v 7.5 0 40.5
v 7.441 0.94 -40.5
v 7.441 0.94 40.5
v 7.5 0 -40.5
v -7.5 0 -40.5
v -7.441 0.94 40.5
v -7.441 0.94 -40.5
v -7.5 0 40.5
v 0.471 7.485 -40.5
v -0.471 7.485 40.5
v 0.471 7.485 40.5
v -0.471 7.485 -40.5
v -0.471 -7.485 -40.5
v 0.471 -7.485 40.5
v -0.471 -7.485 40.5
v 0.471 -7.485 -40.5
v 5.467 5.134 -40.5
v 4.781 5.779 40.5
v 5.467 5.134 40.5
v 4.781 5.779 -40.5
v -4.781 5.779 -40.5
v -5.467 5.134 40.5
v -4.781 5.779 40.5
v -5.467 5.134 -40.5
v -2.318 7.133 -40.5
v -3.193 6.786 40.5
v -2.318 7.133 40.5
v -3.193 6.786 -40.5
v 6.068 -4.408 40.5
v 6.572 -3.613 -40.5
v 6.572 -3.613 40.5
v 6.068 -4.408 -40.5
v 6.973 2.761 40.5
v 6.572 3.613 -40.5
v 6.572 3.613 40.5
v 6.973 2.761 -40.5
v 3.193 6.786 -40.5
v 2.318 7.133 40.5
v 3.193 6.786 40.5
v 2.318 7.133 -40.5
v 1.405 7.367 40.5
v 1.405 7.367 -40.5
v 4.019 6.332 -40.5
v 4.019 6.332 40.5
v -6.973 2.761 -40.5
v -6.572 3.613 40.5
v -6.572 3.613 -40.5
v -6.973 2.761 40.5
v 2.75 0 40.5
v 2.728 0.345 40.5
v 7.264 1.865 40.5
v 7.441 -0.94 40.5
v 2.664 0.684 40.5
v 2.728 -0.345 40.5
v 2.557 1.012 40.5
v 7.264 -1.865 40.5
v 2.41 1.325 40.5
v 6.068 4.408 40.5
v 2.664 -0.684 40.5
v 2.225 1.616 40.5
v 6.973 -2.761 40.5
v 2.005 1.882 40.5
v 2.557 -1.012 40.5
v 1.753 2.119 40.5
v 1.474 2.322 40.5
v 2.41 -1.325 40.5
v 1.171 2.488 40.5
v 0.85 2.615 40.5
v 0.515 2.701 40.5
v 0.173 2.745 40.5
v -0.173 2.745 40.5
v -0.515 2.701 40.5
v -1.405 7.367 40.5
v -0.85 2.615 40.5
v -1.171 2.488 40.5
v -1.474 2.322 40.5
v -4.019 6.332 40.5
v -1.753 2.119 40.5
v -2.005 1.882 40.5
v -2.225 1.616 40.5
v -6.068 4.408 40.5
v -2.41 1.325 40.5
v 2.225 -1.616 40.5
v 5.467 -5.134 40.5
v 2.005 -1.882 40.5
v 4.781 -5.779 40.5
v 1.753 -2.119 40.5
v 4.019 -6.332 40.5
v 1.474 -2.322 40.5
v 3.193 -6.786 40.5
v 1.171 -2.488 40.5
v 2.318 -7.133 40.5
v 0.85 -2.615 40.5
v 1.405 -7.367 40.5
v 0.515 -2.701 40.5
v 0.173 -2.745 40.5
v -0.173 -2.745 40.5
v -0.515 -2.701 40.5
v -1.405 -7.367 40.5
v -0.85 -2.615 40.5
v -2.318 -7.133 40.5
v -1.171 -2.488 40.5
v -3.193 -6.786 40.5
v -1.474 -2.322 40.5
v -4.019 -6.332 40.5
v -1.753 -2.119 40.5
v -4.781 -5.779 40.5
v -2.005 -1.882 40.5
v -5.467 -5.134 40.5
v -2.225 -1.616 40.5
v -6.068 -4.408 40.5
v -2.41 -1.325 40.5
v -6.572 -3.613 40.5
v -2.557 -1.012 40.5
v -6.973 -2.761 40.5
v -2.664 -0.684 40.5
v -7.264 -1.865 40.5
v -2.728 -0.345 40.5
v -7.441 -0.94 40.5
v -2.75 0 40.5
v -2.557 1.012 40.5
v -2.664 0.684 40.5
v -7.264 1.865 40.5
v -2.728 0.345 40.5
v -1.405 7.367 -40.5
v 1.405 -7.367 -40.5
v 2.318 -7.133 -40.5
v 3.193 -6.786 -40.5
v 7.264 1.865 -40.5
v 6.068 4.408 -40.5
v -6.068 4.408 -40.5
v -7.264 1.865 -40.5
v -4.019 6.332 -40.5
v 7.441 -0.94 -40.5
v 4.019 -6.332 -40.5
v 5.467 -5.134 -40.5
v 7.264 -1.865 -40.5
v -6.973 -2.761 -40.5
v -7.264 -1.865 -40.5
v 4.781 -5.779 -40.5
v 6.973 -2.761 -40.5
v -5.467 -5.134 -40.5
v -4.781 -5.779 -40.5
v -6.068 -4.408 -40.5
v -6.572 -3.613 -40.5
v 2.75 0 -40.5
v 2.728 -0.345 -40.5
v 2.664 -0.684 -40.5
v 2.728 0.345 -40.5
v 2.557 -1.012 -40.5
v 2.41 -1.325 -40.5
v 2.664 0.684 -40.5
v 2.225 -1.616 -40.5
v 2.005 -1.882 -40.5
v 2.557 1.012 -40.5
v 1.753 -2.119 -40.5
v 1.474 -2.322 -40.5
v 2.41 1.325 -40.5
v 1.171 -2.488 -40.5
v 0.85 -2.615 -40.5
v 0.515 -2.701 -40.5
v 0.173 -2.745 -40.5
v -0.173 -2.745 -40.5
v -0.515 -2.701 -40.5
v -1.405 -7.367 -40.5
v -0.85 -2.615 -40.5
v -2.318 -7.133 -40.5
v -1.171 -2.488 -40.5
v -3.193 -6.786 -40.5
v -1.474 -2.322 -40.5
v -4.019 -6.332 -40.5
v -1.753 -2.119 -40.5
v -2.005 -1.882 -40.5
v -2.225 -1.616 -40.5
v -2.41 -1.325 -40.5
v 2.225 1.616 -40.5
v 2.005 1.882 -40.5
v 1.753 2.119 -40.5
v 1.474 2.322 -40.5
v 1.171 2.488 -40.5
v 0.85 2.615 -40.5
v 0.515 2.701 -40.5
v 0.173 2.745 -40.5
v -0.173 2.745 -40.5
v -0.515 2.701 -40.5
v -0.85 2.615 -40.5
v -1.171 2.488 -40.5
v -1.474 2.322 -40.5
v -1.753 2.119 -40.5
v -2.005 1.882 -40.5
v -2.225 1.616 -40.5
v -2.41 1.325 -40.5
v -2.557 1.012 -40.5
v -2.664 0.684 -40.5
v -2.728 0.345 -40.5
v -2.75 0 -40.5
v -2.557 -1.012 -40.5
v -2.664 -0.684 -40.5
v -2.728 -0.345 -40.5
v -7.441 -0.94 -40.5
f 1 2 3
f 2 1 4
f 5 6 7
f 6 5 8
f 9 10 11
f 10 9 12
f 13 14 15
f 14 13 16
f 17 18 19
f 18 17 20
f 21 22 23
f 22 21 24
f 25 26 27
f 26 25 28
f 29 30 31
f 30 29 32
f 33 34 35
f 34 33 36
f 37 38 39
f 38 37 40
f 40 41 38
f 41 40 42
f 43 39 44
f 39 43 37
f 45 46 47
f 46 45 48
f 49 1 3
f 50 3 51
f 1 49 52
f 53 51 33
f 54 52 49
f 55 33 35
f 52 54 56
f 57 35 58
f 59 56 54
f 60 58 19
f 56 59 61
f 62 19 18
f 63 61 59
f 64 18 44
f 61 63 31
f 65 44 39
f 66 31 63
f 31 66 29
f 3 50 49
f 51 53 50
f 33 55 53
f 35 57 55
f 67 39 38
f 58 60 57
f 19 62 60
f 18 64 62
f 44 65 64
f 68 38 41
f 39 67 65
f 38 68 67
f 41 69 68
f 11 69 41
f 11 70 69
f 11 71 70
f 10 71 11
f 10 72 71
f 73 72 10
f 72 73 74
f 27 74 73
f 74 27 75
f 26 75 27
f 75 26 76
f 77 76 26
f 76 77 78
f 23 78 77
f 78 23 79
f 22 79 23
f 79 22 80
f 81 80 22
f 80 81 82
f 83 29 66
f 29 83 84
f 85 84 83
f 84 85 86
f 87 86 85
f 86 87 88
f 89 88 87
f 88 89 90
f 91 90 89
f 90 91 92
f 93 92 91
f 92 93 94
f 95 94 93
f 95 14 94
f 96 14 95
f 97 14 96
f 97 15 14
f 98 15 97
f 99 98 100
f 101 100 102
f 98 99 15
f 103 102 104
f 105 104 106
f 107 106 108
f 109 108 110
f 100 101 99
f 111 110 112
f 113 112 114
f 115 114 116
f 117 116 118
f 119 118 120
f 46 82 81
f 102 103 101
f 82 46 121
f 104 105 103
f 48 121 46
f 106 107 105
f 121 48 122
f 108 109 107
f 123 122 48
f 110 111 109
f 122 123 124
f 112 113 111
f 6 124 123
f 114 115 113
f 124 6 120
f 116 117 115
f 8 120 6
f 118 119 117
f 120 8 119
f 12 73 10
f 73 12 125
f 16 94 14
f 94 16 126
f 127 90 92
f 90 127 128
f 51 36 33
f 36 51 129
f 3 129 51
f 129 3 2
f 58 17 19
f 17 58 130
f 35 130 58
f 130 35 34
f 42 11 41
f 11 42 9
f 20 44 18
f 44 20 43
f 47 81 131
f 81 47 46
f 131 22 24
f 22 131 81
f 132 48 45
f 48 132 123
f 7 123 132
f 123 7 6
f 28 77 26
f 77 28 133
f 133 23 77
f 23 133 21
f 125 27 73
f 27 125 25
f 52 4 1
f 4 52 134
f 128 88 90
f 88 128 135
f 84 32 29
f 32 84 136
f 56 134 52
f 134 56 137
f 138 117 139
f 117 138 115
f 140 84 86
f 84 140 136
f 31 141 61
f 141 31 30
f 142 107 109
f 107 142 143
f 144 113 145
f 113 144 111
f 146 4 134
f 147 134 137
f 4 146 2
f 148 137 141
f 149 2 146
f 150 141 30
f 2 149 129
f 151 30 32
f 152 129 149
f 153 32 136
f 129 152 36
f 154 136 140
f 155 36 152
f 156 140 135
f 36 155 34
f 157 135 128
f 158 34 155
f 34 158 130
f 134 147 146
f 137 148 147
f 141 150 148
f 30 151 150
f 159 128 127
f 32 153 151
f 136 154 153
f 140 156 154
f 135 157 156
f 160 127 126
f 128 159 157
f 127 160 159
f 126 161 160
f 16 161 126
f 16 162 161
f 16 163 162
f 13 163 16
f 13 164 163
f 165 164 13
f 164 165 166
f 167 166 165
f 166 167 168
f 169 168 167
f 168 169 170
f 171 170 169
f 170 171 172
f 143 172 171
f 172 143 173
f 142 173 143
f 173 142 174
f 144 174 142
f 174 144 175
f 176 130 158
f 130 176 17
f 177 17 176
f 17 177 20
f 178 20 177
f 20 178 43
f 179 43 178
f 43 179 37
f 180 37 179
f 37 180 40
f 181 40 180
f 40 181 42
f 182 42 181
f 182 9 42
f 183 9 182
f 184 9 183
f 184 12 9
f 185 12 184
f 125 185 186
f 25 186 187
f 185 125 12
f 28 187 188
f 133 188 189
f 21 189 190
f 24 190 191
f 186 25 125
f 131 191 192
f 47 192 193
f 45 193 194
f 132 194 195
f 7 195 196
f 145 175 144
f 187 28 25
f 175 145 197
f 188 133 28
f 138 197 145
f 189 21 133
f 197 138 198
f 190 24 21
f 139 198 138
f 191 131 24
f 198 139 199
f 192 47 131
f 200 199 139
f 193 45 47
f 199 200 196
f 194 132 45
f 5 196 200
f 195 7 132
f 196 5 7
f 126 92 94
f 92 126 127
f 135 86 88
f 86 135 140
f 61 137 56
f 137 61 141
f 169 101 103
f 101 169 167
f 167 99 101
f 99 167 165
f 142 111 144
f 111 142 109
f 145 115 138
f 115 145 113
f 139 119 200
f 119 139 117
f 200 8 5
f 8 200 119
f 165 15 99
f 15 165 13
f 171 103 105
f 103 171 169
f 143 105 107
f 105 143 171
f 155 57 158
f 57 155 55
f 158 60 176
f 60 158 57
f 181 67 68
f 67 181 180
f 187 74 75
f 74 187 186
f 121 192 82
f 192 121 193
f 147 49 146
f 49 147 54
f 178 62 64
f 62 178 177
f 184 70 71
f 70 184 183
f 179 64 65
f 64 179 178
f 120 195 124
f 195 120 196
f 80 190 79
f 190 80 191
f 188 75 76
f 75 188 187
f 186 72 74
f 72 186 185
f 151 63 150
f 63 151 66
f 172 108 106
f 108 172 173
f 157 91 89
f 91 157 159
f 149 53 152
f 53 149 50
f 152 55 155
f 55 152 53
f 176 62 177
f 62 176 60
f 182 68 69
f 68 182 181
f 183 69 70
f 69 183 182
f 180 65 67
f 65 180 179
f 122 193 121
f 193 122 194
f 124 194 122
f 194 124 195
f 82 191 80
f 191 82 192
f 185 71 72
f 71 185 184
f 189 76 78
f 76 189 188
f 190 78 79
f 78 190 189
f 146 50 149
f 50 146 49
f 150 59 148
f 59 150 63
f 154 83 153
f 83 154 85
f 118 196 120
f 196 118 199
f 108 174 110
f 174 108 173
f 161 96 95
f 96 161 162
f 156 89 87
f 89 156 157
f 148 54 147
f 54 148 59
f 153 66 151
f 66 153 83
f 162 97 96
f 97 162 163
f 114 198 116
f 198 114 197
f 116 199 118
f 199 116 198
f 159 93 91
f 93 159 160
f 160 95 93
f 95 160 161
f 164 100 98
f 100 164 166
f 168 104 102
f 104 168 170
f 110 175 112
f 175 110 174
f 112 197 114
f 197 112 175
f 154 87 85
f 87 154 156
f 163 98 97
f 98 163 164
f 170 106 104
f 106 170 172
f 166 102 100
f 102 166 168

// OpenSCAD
$fn = 50;


difference() {
	union() {
		translate(v = [0, 0, -40.5000000000]) {
			cylinder(h = 81, r = 7.5000000000);
		}
	}
	union() {
		translate(v = [0, 0, -100.0000000000]) {
			cylinder(h = 200, r = 2.7500000000);
		}
	}
}
